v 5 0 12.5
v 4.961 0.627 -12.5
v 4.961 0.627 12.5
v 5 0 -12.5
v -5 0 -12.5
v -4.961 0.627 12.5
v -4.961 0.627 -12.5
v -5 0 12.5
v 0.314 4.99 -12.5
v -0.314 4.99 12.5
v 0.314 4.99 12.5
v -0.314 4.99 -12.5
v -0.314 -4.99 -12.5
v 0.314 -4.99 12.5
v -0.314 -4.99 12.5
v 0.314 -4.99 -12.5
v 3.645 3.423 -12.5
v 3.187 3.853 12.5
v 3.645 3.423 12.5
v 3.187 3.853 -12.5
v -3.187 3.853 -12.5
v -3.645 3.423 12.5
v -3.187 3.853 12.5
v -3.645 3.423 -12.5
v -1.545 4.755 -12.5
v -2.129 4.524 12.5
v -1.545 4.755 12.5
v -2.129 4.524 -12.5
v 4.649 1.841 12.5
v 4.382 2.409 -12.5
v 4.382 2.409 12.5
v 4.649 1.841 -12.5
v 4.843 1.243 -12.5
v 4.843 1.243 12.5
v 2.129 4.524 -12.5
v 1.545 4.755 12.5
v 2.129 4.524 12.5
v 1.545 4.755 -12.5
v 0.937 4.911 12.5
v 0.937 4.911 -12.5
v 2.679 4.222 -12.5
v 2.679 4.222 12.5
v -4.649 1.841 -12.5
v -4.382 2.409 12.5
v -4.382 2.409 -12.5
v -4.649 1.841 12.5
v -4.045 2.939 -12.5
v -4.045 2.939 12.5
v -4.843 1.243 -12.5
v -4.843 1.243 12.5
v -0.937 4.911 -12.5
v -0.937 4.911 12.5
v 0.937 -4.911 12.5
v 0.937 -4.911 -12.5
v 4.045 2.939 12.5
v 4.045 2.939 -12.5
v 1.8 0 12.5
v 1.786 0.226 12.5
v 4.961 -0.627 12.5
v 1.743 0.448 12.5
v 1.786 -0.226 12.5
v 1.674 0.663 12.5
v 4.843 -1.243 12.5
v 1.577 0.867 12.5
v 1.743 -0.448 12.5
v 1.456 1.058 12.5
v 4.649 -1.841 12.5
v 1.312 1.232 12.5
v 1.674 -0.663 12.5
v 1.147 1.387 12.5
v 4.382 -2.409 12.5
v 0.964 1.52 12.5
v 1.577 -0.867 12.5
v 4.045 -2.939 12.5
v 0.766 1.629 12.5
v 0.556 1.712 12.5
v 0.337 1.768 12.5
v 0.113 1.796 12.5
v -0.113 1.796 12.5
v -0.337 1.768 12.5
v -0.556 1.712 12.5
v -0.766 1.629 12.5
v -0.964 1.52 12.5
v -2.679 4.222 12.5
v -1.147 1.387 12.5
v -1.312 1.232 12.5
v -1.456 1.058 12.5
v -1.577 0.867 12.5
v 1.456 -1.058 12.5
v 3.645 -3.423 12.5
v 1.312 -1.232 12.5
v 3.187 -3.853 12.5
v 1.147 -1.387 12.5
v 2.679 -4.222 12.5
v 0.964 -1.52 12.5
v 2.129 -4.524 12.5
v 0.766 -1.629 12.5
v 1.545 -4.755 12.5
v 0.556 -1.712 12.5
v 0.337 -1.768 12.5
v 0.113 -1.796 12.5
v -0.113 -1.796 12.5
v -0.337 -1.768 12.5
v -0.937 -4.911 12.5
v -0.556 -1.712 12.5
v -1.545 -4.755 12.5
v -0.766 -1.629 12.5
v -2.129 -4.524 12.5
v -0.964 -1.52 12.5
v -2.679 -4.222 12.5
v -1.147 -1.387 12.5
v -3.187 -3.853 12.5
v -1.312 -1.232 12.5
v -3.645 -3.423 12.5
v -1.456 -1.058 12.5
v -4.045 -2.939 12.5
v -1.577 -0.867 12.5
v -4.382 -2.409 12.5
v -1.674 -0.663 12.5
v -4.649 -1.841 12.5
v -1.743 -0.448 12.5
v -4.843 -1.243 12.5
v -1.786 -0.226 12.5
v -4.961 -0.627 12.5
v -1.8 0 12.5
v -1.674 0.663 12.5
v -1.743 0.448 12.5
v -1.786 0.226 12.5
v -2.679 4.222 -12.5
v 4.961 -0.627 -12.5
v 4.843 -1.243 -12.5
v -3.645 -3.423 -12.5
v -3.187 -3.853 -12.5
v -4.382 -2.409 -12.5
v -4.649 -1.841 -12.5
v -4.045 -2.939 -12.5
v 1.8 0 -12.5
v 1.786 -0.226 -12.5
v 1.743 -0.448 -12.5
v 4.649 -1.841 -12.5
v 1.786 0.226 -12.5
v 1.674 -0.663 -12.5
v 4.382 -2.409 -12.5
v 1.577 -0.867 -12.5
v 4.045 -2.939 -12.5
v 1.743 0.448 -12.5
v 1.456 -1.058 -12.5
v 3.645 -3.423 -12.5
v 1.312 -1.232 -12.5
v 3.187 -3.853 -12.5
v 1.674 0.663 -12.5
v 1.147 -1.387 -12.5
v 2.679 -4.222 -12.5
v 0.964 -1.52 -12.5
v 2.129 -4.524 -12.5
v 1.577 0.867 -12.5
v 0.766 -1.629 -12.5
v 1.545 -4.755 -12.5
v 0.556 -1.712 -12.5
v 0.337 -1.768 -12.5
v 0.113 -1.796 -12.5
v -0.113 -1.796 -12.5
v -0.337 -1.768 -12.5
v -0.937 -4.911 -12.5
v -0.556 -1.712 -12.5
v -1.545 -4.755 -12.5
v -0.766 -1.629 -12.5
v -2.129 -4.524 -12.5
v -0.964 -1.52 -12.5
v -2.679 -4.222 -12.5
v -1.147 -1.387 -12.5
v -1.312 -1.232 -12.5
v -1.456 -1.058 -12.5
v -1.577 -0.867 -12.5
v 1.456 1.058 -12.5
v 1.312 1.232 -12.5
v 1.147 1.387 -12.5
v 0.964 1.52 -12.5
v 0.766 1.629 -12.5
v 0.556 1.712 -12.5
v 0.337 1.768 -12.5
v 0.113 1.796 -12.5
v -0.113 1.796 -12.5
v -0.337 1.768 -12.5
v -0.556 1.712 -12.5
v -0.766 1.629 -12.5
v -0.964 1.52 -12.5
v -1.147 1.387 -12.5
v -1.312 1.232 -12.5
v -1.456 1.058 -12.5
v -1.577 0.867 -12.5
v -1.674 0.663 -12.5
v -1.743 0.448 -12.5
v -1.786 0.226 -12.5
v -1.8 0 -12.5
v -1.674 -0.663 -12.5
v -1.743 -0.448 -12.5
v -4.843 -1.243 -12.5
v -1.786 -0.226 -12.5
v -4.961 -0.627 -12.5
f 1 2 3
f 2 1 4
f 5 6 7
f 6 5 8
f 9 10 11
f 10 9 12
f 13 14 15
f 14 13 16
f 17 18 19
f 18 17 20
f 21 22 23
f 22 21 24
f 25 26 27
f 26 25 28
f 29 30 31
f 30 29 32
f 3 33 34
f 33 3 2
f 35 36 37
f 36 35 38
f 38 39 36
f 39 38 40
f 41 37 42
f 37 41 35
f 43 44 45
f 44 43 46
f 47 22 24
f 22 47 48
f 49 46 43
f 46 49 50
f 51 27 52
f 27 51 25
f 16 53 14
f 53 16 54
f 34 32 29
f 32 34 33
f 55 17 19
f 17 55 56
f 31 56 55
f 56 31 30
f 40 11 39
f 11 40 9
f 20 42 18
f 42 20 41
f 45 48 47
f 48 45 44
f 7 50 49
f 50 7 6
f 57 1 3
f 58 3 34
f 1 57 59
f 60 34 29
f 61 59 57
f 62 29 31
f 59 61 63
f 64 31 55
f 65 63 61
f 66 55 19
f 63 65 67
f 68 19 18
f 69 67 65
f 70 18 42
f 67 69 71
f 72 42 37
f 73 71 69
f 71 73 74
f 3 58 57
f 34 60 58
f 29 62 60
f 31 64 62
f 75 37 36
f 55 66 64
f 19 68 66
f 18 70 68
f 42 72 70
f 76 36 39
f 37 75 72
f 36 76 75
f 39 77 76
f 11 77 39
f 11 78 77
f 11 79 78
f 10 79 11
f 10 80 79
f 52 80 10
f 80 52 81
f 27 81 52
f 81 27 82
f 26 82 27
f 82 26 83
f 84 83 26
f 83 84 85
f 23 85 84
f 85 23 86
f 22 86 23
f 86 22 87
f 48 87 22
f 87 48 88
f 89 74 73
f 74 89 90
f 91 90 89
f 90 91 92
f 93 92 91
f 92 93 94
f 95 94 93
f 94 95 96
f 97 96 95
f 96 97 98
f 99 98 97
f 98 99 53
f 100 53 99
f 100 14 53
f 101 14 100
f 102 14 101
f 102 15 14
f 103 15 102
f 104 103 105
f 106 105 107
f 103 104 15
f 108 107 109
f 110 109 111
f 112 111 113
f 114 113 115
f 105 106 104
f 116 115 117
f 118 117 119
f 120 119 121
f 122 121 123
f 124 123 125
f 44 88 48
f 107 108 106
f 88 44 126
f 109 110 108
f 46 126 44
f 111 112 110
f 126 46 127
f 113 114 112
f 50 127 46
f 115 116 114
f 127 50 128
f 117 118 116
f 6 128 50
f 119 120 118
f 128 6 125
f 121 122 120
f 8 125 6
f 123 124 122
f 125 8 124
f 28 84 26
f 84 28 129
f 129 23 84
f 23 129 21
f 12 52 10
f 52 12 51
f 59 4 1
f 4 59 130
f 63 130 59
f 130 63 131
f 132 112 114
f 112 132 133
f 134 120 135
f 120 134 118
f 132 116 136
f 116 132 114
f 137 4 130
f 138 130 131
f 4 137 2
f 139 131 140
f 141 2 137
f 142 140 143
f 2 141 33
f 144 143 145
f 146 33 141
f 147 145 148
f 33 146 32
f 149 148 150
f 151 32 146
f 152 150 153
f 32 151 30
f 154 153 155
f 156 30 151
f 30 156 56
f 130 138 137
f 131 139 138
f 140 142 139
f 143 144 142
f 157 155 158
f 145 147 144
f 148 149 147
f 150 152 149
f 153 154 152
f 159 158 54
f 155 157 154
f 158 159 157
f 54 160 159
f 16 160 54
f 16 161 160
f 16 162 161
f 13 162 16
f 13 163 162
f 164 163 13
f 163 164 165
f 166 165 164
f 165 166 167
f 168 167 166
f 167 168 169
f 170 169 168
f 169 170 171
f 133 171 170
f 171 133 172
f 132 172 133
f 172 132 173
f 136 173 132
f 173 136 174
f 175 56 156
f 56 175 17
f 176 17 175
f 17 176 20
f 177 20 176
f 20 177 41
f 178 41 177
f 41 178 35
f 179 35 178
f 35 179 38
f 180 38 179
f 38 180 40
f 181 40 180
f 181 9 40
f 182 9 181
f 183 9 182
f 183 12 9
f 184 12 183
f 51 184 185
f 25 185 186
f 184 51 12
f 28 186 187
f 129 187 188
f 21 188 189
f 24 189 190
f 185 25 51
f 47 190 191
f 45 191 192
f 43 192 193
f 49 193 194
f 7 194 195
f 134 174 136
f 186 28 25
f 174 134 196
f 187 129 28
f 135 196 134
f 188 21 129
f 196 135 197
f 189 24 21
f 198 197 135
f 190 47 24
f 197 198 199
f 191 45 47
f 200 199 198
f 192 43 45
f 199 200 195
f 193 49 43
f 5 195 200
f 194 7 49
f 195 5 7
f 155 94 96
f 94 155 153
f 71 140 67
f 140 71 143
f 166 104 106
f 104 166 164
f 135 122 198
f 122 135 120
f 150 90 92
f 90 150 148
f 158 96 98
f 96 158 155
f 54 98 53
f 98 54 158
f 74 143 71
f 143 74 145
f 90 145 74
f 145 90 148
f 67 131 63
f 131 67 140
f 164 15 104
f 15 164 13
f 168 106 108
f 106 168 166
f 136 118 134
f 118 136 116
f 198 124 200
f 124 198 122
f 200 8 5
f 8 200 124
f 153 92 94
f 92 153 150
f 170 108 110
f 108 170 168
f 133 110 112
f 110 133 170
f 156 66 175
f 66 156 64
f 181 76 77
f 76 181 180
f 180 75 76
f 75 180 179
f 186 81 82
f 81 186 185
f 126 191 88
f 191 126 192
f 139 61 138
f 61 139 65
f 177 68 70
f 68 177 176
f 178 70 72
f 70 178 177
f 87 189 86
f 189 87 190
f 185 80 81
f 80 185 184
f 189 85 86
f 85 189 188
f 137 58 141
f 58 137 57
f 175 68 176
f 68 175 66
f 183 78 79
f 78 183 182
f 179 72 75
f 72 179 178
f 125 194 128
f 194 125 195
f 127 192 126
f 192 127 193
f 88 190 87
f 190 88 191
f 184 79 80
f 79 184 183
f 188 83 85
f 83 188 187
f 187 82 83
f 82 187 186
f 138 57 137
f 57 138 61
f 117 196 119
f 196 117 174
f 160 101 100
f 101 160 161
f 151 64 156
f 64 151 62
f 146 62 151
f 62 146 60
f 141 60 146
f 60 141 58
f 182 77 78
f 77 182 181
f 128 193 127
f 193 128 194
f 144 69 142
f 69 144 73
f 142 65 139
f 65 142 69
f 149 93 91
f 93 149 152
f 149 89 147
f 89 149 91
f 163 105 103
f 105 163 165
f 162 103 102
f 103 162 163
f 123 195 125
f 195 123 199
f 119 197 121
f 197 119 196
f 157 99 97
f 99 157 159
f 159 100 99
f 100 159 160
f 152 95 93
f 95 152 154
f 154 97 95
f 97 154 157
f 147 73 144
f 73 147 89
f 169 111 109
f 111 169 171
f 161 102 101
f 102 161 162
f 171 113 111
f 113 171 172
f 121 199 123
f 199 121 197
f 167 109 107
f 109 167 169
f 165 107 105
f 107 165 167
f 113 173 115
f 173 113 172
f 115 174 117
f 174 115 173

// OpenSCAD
$fn = 50;


difference() {
	union() {
		translate(v = [0, 0, -12.5000000000]) {
			cylinder(h = 25, r = 5.0000000000);
		}
	}
	union() {
		translate(v = [0, 0, -100.0000000000]) {
			cylinder(h = 200, r = 1.8000000000);
		}
	}
}
